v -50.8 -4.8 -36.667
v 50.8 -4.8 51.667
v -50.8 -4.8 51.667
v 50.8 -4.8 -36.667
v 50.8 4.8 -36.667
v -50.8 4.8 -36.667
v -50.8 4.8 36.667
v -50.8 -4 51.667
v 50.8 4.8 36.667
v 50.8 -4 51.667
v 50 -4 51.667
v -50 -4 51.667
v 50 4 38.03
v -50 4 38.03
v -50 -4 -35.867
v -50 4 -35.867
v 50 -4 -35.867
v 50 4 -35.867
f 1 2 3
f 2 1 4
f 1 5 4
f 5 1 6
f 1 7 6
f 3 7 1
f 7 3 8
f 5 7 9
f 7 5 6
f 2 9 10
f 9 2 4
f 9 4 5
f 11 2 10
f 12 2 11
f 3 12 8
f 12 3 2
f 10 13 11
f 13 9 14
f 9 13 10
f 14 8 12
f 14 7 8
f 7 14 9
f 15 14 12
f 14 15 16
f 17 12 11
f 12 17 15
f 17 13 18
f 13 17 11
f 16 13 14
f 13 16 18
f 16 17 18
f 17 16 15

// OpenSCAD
/*
  Fridge Leaflet Holder
  By Brian Khuu 2019

  This requires the use of double sided adhesives to attach this leaflet holder to the fridge
*/

// Leaflet Holder Specifictions
holder_wall_thickness=0.8; /* Thickness of walls */
holder_base_thickness=0.8; /* Thickness of base */
holder_hole_size=8; /* Size of the leaflet holder */

// Leaflet Reference Dimentions
leaflet_w=100;//mm
leaflet_l=220;//mm

// Calc
holder_w=leaflet_w+holder_wall_thickness*2;
holder_l=leaflet_l/3;

supported=false;

module leafletholder()
{
  union()
  {
    difference()
    {
      hull()
      {
        cube([holder_w,holder_l,holder_hole_size+holder_base_thickness*2], center=true);
        translate([0,10,holder_hole_size/2+holder_base_thickness/2])
          cube([holder_w,holder_l+10,holder_base_thickness], center=true);
      }
      translate([0,holder_wall_thickness+100/2,0])
        cube([leaflet_w,holder_l+100,holder_hole_size], center=true);
    }
    if(supported)
    {
      translate([0,(holder_l)/2+15,0])
        cube([holder_w,0.5,holder_hole_size+holder_base_thickness*2], center=true);
      translate([0,(holder_l)/2+15,-holder_hole_size/2-holder_base_thickness])
        cube([holder_w,5,0.1], center=true);
    }
  }
}

if(!supported)
{
  rotate([90,0,0]) leafletholder();
}
else
{
  leafletholder();
}
